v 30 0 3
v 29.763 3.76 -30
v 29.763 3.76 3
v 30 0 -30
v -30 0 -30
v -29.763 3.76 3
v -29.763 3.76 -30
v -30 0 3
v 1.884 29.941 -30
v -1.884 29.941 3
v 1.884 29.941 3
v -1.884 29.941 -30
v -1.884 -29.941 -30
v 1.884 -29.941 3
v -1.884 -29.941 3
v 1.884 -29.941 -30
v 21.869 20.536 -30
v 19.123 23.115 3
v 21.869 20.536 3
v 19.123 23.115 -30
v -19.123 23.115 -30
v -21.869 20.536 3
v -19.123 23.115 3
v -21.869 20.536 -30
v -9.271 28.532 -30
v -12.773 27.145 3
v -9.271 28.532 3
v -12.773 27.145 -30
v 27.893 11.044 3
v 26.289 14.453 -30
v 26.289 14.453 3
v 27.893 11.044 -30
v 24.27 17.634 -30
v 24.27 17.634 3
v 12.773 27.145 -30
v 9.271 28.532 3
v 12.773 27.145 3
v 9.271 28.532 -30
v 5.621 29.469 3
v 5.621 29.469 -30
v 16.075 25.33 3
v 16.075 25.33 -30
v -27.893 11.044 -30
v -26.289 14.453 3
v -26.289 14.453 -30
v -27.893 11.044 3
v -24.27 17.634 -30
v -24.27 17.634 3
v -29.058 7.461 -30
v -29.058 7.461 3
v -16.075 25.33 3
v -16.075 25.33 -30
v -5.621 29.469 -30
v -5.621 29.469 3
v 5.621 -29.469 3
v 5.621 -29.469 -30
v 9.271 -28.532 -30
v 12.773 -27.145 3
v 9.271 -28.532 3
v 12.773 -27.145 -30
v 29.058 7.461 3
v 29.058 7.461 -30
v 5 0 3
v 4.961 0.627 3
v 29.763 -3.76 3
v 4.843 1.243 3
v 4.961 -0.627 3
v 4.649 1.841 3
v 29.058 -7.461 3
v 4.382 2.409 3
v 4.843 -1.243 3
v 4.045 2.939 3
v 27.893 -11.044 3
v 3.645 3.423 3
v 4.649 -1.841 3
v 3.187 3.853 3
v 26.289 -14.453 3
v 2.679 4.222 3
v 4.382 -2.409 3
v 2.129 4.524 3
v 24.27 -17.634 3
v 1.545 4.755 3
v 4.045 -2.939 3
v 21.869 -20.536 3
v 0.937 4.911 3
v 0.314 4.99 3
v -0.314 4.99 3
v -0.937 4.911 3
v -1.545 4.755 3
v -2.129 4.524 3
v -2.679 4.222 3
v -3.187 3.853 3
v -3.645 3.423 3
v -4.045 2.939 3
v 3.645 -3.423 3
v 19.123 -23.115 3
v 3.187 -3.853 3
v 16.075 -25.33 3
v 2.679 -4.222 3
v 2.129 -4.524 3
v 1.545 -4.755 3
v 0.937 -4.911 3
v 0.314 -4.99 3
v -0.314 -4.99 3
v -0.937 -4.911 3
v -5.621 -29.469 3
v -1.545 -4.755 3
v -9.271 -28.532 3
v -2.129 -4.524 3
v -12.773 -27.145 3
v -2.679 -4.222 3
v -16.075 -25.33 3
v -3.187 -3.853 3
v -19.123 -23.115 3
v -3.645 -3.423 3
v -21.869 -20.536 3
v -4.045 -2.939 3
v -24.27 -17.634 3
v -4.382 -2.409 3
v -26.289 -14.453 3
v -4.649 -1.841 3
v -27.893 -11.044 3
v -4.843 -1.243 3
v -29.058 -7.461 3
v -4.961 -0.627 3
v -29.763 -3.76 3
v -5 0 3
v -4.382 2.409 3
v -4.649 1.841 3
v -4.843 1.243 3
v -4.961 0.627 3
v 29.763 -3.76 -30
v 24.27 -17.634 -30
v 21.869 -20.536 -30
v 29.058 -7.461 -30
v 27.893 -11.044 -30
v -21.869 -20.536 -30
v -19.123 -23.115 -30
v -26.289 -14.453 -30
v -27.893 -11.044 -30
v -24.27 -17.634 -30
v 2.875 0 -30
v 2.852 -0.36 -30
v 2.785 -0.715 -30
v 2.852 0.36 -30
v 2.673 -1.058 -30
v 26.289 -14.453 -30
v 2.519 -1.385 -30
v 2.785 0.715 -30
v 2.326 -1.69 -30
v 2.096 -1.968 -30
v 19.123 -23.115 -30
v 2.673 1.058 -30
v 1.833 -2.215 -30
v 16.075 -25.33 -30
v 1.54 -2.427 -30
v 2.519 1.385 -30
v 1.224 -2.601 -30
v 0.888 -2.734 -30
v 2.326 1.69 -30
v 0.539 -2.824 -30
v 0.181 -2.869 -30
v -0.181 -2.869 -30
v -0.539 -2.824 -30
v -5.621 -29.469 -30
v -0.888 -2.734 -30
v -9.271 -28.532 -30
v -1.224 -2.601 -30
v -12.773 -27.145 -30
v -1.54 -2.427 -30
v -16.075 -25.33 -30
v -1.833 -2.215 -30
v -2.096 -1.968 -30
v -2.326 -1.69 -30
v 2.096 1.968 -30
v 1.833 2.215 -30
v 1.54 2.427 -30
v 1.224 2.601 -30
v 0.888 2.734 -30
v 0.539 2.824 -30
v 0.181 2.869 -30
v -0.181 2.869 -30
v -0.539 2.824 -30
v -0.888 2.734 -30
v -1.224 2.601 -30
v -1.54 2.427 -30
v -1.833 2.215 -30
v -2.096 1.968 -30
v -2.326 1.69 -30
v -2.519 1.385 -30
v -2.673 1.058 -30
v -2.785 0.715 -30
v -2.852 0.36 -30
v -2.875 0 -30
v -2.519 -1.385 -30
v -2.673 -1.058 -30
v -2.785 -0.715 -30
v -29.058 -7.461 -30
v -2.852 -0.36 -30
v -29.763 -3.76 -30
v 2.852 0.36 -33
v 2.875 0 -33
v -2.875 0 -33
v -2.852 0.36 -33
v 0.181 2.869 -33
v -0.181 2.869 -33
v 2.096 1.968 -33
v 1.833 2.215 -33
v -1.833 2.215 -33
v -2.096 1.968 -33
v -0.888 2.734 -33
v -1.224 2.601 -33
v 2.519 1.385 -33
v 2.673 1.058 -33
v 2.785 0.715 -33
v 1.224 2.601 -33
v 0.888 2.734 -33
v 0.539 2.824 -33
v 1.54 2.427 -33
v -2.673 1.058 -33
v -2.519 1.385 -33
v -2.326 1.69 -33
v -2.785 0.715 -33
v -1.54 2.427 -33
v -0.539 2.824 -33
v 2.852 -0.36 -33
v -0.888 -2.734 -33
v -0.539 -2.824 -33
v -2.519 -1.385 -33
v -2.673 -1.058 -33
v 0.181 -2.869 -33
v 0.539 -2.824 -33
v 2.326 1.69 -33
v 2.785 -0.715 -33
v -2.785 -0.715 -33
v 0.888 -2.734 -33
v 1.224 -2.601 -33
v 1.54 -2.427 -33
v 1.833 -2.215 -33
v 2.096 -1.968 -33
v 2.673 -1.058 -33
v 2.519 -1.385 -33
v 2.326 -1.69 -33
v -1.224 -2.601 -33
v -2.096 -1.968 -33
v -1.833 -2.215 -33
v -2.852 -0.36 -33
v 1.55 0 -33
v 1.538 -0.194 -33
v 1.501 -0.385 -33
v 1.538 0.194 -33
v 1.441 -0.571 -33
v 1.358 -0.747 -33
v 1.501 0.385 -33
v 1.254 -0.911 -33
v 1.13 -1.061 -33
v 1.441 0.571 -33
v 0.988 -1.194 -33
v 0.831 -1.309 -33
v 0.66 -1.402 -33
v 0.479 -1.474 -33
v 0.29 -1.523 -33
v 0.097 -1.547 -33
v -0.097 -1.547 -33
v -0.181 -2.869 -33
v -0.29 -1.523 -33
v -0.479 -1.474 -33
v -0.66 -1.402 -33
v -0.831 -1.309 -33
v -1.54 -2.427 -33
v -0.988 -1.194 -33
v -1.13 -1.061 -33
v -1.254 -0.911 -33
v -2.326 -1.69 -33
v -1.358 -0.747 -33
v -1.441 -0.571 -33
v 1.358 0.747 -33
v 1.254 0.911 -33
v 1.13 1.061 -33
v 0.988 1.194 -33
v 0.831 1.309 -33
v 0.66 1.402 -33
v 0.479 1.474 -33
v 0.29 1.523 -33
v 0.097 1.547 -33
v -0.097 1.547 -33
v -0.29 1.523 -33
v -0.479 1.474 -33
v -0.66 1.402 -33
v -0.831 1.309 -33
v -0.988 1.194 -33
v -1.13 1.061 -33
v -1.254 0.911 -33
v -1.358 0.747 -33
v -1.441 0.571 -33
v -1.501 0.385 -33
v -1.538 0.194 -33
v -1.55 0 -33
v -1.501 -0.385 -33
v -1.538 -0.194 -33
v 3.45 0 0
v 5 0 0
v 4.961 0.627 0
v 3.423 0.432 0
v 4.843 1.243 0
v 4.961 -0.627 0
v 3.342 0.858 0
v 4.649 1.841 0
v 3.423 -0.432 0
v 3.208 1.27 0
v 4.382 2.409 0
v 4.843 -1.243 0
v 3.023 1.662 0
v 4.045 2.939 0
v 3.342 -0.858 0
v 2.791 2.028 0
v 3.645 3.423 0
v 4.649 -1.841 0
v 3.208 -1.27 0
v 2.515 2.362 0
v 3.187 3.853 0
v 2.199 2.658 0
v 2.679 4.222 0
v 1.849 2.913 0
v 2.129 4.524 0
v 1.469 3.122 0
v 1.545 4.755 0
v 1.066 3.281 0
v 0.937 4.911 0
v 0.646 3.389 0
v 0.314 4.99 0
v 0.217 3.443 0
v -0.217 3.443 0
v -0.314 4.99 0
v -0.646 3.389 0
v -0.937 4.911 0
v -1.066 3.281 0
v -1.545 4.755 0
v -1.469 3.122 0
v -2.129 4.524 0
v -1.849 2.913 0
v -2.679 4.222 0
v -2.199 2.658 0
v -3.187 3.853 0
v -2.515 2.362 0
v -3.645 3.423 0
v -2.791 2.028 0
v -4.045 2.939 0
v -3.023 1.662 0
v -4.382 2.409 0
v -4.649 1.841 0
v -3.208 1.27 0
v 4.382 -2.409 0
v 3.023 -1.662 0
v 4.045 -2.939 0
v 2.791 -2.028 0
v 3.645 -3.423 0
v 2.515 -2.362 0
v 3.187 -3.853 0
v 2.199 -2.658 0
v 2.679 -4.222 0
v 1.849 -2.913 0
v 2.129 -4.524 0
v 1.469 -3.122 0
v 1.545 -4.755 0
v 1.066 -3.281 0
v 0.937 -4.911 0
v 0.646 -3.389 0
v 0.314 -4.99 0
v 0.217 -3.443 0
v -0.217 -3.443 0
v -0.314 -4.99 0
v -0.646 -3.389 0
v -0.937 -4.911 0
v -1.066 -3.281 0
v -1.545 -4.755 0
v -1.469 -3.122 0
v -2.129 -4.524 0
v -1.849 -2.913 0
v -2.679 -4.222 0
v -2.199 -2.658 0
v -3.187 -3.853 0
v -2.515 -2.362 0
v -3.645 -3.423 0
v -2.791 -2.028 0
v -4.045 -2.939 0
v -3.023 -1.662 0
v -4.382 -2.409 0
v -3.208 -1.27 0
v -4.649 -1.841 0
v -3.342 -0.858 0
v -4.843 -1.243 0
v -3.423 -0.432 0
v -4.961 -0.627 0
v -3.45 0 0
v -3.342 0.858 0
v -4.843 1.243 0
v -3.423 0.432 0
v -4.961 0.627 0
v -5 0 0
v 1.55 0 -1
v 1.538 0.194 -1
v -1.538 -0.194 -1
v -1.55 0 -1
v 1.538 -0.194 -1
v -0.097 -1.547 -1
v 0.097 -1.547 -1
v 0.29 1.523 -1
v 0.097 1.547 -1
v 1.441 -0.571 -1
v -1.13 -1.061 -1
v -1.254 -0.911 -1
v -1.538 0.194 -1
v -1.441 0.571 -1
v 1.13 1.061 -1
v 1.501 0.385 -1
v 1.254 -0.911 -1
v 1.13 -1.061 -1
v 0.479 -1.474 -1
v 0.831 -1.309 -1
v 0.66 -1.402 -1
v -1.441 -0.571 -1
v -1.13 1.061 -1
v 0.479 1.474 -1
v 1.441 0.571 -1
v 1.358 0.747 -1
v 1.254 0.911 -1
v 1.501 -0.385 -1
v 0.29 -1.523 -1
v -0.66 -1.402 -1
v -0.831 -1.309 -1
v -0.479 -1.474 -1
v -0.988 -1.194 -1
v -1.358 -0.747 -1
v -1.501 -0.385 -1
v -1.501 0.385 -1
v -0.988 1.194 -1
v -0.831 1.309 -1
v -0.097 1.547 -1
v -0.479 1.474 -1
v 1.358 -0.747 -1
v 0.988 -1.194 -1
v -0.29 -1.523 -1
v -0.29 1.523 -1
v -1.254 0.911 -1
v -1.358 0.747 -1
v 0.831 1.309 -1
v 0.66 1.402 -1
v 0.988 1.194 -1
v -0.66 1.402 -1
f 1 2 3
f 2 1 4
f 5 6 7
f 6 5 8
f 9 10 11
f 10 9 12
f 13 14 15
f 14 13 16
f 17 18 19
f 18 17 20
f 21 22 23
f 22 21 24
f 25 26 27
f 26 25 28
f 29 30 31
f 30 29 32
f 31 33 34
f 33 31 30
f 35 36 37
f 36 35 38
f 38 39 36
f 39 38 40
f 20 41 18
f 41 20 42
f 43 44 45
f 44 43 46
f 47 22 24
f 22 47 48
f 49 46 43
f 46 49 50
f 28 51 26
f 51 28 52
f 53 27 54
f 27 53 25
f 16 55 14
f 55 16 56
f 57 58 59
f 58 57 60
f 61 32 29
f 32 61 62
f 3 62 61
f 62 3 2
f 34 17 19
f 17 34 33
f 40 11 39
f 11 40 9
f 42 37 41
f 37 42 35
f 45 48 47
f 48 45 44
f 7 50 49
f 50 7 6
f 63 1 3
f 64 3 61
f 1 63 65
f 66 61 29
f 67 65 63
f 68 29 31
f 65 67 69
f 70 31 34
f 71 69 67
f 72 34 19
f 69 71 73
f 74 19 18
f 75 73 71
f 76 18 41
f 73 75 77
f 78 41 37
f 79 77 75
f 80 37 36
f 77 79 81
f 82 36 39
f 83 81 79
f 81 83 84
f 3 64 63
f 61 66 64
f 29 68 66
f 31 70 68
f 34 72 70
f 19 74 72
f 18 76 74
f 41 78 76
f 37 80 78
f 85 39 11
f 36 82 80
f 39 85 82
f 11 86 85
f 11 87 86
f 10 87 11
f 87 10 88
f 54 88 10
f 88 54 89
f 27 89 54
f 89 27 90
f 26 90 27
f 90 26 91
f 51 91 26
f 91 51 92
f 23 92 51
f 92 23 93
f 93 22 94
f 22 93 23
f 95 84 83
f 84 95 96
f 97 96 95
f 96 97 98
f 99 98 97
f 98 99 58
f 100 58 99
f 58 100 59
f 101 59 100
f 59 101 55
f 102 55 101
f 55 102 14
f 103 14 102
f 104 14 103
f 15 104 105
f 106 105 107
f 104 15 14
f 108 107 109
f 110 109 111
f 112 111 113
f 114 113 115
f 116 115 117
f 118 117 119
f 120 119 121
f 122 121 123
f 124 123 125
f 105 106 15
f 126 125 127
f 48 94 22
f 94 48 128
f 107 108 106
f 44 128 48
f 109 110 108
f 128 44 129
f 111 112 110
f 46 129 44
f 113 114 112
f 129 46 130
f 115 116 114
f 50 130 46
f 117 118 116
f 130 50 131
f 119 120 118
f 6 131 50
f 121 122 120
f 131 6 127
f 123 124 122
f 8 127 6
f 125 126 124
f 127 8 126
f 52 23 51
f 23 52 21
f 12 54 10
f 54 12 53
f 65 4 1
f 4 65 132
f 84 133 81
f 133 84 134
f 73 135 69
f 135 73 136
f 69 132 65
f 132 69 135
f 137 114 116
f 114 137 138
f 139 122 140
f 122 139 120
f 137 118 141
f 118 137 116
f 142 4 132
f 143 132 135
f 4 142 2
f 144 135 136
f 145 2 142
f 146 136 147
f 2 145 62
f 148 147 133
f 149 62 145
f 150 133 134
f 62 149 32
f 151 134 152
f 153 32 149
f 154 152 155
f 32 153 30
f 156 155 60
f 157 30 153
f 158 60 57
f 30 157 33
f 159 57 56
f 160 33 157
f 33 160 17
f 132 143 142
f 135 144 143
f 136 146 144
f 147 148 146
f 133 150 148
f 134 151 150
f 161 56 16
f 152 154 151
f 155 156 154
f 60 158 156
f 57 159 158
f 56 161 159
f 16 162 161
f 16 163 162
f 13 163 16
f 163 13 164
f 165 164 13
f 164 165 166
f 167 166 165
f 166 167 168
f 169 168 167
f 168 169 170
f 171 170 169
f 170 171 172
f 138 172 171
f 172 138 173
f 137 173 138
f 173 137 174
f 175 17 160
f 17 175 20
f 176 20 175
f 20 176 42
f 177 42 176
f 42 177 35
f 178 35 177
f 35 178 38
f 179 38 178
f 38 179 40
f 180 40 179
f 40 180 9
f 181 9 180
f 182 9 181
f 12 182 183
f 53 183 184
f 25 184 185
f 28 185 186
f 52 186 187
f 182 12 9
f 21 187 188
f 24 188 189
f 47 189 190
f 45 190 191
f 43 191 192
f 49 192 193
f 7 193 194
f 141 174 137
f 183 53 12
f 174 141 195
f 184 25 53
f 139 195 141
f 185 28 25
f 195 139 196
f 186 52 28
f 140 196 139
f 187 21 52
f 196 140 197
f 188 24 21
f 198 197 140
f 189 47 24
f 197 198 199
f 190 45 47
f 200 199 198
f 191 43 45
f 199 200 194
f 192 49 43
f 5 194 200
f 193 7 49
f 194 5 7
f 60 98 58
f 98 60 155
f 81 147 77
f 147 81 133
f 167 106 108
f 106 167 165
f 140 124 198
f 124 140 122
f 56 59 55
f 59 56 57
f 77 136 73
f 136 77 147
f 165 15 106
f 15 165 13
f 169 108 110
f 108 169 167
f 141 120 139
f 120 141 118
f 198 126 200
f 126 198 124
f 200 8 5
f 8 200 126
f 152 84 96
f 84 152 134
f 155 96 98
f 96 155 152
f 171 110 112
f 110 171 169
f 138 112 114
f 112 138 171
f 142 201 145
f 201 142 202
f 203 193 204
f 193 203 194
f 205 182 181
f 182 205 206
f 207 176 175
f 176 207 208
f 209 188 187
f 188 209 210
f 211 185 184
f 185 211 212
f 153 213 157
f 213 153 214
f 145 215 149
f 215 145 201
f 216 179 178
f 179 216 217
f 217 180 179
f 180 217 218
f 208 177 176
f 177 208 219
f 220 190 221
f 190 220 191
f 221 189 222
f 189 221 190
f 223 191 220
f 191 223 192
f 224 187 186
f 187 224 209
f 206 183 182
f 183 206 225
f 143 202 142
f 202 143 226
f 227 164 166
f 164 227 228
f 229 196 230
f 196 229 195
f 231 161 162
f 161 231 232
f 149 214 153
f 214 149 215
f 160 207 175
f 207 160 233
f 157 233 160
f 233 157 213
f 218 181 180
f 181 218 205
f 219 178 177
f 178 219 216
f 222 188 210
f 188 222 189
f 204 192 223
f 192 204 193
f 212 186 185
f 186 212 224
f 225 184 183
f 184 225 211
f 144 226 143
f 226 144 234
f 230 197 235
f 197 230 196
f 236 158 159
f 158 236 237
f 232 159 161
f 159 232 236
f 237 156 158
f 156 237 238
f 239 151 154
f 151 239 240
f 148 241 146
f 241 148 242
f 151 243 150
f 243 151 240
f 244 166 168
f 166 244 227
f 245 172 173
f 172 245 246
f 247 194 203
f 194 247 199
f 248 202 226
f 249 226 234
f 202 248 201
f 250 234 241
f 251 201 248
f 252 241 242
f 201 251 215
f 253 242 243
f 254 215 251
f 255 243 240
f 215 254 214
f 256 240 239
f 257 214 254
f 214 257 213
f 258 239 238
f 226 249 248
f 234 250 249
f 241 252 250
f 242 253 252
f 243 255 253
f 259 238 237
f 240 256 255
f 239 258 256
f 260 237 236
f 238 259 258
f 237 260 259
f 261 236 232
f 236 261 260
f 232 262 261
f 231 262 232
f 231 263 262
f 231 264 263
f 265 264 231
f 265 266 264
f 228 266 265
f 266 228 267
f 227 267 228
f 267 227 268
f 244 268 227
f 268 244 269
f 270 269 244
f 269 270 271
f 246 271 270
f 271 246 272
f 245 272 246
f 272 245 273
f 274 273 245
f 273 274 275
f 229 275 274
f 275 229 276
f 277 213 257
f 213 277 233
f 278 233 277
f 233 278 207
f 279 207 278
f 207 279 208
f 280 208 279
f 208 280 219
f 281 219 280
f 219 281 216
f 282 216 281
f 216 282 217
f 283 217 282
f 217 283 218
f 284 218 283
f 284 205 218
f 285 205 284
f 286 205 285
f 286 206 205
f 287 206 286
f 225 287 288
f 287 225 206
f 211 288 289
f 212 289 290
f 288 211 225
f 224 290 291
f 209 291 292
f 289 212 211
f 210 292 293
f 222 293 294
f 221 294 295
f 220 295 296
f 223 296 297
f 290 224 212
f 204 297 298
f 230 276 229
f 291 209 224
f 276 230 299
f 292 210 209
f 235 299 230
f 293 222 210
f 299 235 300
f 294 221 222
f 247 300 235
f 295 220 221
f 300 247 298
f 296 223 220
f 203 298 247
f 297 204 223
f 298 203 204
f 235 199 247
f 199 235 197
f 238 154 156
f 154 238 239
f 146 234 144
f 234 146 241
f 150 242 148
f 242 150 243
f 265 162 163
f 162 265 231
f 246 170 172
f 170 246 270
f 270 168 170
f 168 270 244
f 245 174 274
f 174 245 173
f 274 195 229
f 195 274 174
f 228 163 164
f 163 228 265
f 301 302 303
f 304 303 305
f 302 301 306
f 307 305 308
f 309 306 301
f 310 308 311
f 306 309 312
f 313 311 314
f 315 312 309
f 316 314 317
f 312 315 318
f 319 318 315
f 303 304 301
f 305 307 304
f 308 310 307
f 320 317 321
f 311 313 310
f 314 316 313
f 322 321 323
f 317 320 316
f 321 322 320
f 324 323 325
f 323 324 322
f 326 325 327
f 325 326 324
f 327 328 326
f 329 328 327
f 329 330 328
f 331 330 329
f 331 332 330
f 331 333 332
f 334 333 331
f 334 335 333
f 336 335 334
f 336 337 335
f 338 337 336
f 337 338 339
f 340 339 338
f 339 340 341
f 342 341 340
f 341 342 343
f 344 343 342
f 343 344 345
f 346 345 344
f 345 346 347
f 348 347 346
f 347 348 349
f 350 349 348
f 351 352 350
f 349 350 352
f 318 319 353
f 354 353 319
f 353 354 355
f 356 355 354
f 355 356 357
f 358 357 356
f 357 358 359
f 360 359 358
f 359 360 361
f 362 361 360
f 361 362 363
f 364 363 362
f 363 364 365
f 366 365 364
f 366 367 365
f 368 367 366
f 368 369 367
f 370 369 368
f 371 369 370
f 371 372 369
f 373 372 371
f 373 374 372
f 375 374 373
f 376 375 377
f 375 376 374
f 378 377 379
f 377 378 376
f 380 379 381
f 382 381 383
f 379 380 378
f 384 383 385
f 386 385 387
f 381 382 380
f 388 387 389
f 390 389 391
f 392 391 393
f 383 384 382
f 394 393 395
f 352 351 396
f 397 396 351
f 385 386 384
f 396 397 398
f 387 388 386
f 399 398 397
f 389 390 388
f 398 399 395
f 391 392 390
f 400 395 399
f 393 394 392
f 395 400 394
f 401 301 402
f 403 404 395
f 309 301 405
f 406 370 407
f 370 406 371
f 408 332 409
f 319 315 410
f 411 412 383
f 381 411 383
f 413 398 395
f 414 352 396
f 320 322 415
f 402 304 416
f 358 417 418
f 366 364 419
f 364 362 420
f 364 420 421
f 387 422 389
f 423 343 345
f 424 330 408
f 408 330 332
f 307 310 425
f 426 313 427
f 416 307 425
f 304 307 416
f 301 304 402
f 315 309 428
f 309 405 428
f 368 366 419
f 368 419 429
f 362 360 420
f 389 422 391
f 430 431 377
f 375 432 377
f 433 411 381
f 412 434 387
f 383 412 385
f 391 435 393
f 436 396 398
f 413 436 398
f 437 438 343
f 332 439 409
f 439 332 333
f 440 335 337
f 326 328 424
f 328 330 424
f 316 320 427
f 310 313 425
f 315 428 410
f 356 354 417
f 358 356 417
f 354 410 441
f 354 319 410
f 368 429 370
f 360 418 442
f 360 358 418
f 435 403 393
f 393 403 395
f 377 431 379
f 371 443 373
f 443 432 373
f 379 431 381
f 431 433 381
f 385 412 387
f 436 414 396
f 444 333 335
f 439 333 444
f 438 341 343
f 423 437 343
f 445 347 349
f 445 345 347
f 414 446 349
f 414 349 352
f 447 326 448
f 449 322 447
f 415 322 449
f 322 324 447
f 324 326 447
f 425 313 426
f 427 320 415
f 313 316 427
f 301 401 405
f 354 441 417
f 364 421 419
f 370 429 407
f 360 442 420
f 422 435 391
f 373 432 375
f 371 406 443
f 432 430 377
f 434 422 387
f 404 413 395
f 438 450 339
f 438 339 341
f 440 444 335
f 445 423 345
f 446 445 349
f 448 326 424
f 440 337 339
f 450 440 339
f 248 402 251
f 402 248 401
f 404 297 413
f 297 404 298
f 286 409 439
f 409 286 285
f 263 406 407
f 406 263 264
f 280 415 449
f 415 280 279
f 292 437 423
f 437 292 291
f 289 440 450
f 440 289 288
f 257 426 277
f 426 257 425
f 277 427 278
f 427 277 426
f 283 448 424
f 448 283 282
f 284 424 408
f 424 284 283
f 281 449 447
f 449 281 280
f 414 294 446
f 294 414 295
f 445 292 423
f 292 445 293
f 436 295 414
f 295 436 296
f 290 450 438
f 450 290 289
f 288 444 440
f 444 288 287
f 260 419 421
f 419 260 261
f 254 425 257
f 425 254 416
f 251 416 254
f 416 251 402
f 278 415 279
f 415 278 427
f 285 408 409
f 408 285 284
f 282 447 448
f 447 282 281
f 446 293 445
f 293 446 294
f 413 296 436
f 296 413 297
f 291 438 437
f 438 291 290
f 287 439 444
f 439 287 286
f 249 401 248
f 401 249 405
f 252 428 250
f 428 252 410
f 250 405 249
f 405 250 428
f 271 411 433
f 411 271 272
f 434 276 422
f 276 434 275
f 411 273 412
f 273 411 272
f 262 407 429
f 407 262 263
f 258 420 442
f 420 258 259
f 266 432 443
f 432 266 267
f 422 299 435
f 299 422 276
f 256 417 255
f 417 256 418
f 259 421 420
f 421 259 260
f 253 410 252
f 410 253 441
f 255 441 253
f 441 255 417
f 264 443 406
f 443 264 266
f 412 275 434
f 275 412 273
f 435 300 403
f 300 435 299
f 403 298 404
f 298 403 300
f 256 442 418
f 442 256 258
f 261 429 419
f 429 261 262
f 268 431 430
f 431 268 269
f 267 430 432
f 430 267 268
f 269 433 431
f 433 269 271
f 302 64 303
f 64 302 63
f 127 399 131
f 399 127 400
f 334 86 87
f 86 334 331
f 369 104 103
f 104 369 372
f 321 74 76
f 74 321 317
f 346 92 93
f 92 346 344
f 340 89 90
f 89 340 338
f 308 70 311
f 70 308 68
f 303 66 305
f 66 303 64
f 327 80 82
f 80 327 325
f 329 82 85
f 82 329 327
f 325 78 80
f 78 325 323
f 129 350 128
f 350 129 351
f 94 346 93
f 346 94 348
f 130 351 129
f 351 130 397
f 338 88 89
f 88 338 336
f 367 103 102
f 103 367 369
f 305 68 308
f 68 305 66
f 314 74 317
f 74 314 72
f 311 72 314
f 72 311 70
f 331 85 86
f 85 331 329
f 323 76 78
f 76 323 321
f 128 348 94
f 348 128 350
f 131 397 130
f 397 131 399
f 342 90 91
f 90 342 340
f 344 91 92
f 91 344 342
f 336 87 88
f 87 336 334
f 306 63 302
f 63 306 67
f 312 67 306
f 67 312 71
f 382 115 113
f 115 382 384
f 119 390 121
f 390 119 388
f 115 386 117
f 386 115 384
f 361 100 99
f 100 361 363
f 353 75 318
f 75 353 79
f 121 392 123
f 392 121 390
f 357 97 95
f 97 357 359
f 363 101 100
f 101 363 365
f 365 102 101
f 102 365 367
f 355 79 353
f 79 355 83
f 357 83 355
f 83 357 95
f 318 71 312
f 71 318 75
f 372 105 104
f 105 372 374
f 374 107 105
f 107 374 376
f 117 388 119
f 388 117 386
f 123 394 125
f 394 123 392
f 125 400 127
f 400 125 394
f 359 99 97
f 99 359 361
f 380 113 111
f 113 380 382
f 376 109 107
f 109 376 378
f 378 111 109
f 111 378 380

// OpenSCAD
$fn = 50;

difference() {
	union() {
		translate(v = [0, 0, -30.0]) {
			cylinder(h = 33, r = 30.0);
		}
		#translate(v = [0, 0, -33.0]) {
			cylinder(h = 33, r = 2.875);
		}
	}
	union() {
		translate(v = [0, 0, 0]) {
			rotate(a = [0, 0, 0]) {
				difference() {
					union() {
						translate(v = [0, 0, -33.0]) {
							cylinder(h = 33, r = 1.25);
						}
						translate(v = [0, 0, -1.0]) {
							cylinder(h = 1.0, r1 = 1.55, r2 = 3.45);
						}
						translate(v = [0, 0, -33.0]) {
							cylinder(h = 33, r = 1.55);
						}
						translate(v = [0, 0, -33.0]) {
							cylinder(h = 33, r = 1.25);
						}
					}
					union();
				}
			}
		}
		#cylinder(h = 3, r = 5.0);
	}
}
